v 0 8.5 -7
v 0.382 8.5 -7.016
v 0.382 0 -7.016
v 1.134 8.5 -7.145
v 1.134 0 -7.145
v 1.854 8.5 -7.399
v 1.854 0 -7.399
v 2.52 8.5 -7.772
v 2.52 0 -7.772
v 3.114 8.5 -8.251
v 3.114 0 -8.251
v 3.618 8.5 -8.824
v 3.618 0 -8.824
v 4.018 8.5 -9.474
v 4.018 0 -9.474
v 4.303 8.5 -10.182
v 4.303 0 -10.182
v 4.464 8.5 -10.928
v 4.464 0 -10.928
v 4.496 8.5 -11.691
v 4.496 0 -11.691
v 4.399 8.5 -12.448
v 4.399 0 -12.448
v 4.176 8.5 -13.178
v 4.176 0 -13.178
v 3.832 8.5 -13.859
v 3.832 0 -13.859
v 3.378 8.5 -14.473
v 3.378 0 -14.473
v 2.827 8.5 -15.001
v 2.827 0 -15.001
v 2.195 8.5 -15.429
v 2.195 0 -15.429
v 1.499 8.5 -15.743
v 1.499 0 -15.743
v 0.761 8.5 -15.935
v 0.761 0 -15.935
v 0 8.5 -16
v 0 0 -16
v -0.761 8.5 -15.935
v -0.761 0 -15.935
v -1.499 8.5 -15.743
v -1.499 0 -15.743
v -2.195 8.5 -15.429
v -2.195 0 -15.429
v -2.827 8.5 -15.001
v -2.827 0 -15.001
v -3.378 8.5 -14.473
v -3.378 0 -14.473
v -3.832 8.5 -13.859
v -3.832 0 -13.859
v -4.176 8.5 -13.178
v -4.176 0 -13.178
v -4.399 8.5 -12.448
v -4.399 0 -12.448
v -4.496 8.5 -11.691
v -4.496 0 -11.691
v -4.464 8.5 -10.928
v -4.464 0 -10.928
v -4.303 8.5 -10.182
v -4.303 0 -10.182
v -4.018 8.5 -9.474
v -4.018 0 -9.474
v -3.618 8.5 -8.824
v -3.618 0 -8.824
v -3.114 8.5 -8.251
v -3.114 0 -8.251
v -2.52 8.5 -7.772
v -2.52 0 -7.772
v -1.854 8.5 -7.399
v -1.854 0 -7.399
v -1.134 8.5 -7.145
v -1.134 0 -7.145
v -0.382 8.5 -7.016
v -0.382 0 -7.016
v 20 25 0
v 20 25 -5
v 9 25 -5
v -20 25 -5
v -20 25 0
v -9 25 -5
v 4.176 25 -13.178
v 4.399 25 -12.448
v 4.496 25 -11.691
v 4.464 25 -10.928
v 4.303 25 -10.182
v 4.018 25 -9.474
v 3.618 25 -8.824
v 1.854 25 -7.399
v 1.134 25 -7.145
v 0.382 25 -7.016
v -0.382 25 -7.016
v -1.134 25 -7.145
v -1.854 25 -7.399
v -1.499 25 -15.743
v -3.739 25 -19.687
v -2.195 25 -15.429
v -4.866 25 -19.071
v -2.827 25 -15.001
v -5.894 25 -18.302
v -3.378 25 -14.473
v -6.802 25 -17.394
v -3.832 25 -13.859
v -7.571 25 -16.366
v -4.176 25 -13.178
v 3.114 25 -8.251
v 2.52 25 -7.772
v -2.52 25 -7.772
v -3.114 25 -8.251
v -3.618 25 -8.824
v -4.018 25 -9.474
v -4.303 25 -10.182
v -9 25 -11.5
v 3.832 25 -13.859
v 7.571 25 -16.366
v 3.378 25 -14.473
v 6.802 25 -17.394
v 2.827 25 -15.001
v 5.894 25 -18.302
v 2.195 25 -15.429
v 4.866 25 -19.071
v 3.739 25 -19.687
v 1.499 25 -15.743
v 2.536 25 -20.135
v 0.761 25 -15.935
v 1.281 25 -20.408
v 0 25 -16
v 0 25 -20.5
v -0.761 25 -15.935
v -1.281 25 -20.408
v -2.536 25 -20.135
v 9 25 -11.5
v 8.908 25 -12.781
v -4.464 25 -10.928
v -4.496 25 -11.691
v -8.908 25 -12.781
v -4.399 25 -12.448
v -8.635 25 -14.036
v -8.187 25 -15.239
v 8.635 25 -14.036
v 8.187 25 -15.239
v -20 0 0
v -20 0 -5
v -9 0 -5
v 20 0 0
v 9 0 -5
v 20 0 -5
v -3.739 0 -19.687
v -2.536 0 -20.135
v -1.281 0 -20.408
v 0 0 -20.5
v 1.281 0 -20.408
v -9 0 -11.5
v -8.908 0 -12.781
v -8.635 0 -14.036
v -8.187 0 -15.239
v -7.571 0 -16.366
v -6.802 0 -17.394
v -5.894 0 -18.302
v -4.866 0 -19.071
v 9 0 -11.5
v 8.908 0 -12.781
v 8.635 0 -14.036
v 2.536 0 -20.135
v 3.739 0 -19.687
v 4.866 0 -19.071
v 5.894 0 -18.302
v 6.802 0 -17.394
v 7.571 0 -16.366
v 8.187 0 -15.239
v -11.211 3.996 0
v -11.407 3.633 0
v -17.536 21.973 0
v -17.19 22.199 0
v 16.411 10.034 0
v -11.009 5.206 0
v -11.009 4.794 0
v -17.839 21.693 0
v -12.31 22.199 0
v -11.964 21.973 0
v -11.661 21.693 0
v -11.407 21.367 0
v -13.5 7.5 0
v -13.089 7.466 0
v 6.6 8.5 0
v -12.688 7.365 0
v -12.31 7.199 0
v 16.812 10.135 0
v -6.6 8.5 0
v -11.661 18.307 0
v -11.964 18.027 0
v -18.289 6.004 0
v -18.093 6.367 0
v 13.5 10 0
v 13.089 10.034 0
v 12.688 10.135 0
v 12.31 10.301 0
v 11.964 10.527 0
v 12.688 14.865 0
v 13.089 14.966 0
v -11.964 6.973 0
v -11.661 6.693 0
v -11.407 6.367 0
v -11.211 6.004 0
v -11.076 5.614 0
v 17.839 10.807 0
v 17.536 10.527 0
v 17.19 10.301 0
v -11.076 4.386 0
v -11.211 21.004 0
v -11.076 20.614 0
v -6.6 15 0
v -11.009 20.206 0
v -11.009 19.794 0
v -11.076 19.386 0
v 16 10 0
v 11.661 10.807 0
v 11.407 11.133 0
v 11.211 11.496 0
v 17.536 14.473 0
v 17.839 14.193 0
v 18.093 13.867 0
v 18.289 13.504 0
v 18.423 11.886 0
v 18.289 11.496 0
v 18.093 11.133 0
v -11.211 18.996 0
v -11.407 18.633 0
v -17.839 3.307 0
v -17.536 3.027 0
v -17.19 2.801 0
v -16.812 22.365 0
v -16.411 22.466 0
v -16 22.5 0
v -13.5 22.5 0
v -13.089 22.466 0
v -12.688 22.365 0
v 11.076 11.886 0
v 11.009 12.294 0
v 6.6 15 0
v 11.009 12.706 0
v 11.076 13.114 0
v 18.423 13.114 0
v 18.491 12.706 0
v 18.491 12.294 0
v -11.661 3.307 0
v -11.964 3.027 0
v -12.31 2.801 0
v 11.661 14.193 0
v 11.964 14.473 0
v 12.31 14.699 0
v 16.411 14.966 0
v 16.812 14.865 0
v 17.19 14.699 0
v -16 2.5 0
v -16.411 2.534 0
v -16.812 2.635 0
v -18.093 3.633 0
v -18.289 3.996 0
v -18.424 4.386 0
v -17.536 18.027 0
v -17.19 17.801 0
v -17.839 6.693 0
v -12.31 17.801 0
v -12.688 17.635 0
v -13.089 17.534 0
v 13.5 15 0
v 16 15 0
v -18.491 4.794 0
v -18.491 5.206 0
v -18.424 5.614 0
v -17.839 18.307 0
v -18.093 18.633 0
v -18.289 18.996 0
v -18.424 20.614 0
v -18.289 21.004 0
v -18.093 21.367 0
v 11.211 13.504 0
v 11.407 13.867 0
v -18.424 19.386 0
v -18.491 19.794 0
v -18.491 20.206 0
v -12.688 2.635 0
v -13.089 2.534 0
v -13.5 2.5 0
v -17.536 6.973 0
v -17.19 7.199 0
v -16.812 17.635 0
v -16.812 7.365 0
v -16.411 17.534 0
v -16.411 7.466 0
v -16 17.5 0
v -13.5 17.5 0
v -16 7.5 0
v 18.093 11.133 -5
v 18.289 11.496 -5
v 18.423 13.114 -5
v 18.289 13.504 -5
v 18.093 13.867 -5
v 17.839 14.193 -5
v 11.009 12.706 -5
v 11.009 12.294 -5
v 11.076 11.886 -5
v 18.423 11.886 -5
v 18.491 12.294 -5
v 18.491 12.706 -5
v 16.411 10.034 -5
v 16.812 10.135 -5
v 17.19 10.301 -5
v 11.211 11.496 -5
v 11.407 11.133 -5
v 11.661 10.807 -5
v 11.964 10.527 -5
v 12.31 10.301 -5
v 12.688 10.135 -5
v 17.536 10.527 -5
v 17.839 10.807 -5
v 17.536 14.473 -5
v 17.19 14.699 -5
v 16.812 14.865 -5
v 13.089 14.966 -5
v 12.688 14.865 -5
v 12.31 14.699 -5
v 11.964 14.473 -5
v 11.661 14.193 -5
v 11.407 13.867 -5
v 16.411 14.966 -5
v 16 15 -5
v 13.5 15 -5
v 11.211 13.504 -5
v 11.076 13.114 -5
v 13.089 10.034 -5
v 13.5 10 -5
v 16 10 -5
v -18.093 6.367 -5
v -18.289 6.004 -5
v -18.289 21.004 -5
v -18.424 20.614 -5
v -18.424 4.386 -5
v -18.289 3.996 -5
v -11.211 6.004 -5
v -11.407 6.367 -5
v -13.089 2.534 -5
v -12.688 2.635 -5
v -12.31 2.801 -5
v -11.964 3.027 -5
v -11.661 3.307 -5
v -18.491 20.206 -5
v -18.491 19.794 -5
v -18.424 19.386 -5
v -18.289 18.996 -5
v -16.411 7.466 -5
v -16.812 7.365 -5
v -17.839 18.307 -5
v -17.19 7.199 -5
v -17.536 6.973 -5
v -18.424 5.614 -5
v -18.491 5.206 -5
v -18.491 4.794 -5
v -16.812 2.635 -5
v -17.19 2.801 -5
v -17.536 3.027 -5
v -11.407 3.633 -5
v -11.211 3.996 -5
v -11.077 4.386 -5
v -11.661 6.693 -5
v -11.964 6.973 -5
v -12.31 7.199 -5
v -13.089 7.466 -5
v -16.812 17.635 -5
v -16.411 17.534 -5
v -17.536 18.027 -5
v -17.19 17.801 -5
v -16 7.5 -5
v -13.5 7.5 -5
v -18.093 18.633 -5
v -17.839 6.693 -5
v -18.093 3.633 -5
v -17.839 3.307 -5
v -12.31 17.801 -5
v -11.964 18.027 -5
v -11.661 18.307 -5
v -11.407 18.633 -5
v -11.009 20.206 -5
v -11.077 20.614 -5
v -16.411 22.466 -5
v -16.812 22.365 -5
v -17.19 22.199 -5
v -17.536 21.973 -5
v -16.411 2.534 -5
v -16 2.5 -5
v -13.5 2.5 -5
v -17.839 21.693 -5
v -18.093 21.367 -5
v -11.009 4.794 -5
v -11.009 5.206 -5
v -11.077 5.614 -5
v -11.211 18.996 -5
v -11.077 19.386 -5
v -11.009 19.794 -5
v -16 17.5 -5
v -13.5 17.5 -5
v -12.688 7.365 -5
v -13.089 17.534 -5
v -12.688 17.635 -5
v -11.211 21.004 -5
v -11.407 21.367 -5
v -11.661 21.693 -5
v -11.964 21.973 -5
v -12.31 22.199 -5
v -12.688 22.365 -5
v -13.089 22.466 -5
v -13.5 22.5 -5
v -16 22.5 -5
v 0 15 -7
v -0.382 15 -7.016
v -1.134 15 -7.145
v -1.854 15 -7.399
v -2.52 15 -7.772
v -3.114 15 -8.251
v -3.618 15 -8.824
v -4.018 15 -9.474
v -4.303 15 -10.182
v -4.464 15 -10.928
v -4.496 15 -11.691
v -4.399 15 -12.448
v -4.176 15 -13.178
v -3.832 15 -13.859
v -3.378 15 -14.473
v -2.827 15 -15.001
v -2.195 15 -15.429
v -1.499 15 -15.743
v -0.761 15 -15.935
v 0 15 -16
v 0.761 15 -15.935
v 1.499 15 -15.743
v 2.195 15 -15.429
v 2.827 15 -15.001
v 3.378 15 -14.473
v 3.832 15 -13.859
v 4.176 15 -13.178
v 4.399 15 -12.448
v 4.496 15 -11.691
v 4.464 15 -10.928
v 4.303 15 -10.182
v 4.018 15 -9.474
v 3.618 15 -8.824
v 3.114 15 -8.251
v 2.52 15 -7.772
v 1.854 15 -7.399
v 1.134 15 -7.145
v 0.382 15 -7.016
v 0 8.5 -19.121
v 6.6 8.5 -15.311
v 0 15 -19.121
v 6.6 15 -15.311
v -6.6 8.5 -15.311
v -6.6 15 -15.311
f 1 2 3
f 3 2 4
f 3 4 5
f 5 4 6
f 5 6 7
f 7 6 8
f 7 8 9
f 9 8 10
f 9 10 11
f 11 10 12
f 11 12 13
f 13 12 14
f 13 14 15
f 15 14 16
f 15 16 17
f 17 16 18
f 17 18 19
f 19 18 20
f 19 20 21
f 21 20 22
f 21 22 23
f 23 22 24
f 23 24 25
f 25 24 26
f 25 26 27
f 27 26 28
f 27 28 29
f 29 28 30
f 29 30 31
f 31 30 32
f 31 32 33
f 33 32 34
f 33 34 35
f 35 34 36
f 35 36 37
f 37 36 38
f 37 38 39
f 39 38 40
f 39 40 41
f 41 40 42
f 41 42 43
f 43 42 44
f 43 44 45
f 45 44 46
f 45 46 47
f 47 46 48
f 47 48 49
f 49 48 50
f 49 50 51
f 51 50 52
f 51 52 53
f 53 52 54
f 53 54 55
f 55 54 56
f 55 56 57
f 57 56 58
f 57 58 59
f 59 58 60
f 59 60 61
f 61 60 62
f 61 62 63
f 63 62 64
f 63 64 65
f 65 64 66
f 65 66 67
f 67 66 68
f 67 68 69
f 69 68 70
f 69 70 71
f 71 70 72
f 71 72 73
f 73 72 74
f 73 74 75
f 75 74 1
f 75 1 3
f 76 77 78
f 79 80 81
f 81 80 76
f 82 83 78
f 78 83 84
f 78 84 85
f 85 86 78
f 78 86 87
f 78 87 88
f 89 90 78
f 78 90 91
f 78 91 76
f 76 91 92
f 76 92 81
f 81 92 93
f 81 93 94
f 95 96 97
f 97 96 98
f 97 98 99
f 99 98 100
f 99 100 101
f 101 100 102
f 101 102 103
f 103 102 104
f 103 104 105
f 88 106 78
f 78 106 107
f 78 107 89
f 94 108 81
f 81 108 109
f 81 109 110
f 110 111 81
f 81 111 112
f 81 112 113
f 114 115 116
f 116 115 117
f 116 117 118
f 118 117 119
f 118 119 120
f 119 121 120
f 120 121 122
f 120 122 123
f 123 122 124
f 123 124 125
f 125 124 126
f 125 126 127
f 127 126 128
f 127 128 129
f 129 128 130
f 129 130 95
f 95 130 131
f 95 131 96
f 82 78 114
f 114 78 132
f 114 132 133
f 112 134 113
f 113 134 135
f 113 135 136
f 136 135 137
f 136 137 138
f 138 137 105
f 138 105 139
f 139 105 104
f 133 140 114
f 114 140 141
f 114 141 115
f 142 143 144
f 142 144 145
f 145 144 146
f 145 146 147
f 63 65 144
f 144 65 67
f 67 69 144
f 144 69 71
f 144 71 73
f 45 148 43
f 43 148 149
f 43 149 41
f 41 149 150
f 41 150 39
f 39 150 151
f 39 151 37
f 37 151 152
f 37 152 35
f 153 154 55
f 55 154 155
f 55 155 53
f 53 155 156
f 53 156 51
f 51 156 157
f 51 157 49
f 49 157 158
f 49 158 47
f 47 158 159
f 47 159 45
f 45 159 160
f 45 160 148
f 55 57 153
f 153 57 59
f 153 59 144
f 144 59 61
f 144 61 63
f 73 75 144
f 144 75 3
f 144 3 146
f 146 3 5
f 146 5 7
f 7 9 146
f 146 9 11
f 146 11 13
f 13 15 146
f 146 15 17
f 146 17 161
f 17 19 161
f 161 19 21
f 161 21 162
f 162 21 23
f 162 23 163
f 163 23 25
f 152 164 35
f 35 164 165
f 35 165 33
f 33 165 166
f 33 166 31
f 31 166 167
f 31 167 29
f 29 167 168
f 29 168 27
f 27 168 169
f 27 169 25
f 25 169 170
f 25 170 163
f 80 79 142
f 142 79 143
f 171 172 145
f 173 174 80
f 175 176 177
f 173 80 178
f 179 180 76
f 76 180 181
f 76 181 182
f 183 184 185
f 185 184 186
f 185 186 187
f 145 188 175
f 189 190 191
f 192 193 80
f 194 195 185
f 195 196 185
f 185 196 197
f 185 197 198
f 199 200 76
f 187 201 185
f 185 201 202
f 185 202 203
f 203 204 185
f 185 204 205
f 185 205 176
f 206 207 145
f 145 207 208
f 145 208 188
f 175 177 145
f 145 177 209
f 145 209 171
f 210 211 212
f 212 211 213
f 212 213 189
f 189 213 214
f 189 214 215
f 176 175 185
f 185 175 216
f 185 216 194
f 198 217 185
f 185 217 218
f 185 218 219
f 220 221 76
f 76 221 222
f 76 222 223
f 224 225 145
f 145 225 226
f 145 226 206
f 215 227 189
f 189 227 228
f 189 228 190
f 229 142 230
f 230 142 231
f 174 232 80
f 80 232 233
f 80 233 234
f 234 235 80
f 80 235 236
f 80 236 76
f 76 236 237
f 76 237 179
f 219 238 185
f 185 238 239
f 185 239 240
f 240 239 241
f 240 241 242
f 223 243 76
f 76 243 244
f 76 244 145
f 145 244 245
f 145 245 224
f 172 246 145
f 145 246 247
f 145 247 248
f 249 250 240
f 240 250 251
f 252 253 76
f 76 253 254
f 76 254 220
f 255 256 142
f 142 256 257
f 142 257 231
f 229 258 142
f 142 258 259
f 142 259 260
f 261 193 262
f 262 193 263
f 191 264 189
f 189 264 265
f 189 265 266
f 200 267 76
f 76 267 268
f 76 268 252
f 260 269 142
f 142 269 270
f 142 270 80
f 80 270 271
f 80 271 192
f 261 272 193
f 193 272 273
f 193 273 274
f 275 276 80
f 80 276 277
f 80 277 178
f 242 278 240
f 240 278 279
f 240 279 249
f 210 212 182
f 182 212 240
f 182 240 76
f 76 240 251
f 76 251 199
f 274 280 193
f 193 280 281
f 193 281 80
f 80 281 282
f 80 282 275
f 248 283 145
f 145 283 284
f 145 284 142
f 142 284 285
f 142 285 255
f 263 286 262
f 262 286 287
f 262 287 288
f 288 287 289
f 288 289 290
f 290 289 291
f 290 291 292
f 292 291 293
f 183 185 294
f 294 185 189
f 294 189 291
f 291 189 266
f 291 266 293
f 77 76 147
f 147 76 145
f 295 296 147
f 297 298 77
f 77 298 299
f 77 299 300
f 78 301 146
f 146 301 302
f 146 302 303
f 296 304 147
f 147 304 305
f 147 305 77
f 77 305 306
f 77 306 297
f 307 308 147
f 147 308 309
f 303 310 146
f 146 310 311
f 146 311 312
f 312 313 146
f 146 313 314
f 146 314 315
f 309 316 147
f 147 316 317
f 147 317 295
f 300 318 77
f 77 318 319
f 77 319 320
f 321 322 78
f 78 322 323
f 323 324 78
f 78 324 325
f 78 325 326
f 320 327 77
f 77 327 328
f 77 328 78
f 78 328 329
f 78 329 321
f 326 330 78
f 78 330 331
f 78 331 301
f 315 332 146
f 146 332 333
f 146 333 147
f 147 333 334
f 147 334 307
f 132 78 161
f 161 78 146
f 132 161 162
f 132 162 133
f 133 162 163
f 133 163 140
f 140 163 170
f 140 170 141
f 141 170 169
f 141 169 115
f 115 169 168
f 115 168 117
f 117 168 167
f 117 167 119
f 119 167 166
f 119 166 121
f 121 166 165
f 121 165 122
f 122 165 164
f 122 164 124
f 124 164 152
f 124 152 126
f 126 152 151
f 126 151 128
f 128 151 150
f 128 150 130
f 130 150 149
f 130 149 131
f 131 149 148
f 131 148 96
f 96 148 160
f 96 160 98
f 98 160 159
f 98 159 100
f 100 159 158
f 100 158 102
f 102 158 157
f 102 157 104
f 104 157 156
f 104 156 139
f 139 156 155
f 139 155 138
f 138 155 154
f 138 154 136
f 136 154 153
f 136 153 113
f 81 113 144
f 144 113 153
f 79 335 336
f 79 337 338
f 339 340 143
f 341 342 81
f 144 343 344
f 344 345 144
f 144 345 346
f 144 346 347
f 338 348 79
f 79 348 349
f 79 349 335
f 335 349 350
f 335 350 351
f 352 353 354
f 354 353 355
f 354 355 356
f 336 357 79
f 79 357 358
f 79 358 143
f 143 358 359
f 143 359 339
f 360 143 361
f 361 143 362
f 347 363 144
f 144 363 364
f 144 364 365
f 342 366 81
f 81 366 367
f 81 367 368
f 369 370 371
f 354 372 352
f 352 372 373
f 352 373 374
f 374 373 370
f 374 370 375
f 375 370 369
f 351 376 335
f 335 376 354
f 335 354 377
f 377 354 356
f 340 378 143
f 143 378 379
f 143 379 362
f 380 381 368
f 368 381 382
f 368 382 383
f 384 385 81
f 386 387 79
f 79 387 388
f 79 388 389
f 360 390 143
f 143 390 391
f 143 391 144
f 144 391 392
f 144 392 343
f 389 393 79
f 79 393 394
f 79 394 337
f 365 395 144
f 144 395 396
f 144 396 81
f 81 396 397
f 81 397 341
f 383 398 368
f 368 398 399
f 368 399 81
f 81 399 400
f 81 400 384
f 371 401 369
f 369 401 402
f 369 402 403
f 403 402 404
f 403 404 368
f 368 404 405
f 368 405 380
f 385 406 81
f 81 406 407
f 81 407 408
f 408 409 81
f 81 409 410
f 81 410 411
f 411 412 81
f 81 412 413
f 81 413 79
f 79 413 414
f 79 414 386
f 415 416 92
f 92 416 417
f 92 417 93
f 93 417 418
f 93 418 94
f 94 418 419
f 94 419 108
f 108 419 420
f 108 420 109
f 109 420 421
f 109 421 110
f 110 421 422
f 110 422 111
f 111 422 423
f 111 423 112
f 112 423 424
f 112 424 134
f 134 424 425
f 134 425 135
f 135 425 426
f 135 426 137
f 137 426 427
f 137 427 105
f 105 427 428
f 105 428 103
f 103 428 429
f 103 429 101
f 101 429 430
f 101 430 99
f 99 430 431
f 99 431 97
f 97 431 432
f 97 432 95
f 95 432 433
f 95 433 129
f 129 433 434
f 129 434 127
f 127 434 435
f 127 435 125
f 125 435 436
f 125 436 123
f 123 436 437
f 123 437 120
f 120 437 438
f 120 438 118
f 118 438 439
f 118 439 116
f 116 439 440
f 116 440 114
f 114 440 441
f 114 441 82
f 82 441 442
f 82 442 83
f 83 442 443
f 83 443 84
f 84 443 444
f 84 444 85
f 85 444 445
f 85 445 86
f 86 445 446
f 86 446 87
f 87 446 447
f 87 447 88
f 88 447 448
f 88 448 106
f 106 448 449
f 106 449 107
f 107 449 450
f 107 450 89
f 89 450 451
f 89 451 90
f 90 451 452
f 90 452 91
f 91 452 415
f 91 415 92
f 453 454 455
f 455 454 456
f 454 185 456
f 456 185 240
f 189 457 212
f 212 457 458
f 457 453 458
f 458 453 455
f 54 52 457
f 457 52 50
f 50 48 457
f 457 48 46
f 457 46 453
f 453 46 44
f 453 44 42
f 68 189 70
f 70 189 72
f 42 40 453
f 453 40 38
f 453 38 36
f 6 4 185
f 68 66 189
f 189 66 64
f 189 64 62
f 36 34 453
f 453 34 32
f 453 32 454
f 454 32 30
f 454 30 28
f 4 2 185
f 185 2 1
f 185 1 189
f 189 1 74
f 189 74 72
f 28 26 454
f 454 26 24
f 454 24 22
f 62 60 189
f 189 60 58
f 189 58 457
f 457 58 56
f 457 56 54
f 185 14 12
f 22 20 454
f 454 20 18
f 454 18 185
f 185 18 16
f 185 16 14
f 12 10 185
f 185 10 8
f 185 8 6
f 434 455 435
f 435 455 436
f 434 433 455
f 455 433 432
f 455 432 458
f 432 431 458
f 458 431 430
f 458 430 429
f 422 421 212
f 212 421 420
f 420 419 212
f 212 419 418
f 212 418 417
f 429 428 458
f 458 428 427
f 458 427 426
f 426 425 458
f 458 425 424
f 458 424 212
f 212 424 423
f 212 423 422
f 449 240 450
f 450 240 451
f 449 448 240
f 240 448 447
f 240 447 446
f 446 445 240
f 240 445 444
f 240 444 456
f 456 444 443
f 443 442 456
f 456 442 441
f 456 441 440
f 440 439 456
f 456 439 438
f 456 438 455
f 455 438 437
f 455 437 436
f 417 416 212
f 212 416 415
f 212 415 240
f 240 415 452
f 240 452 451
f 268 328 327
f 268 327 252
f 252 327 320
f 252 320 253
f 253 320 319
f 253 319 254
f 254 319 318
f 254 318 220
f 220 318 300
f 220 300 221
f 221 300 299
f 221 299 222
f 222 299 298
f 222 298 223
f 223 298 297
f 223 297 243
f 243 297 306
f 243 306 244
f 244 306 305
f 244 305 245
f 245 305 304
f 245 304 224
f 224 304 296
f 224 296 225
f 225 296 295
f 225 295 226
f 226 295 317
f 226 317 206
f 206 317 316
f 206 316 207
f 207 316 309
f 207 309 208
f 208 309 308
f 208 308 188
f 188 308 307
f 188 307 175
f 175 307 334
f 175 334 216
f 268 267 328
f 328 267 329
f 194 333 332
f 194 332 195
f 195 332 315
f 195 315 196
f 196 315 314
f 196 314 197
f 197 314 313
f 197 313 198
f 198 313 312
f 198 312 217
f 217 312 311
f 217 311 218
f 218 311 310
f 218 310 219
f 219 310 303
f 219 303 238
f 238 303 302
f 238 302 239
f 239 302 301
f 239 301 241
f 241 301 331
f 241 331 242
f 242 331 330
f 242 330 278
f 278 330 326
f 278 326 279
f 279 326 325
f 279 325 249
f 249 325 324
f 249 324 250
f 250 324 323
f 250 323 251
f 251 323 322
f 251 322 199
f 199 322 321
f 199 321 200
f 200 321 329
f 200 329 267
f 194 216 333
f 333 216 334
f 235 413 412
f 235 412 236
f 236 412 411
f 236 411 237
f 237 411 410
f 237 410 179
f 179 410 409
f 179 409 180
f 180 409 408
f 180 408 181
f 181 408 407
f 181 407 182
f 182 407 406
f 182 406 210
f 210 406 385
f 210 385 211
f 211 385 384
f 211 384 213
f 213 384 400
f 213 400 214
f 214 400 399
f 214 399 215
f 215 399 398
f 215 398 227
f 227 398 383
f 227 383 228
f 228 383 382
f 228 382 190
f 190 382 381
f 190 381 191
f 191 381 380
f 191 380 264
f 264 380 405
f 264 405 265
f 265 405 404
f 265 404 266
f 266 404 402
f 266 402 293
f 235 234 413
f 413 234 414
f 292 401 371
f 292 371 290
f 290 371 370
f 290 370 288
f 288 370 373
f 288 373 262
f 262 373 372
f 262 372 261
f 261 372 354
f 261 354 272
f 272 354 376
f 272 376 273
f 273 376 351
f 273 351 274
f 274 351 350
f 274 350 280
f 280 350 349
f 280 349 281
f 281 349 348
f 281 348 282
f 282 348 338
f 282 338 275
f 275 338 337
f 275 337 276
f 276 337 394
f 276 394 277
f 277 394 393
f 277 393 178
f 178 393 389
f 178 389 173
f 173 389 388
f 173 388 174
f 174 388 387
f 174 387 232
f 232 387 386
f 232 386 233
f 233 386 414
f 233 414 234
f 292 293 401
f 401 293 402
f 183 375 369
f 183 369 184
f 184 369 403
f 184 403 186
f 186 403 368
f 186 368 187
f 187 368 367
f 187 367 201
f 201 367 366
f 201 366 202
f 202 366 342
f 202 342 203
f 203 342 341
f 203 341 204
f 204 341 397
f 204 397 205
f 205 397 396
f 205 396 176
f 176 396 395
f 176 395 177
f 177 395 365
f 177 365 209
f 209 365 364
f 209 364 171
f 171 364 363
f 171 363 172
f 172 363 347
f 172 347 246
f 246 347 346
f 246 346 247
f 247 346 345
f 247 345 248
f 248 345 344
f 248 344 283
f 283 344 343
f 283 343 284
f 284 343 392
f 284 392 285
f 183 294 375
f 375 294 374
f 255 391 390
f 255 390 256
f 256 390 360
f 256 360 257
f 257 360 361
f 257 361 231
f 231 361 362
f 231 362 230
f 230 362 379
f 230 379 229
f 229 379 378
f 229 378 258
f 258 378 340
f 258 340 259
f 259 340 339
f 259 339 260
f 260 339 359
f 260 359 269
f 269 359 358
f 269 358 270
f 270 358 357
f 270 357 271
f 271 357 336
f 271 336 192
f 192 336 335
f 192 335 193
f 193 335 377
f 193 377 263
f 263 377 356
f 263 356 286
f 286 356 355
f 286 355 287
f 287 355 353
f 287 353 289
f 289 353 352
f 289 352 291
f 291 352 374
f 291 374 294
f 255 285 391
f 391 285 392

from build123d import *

# Parameters (mm, degrees)
SKETCH1_R           = 4.5
BOSS_EXTRUDE1_DEPTH = 25
CUT_EXTRUDE1_DEPTH  = 6.5
SKETCH4_W           = 13.2
SKETCH4_H           = 6.5
CUT_EXTRUDE2_DEPTH  = 8.689488223
CUT_EXTRUDE3_DEPTH  = 6


with BuildPart() as part:
    # Sketch1 → Boss-Extrude1 (new body)
    with BuildSketch(Plane(origin=(0, 0, 0), x_dir=(1, 0, 0), z_dir=(0, 1, 0))):
        with BuildLine():
            Line((20, 0), (-20, 0))
            Line((-20, 0), (-20, 5))
            Line((-20, 5), (-9, 5))
            Line((-9, 5), (-9, 11.5))
            ThreePointArc((-9, 11.5), (0, 20.5), (9, 11.5))
            Line((9, 11.5), (9, 5))
            Line((9, 5), (20, 5))
            Line((20, 5), (20, 0))
        make_face()
        with Locations((0, 11.5)):
            Circle(SKETCH1_R, mode=Mode.SUBTRACT)
    extrude(amount=BOSS_EXTRUDE1_DEPTH)

    # Sketch2 → Cut-Extrude1 (cut)
    with BuildSketch(Plane(origin=(0, 15, 0), x_dir=(1, 0, 0), z_dir=(0, 1, 0))):
        Polygon((0, 19.121023553), (-6.6, 15.310511777), (-6.6, 7.689488223), (0, 3.878976447), (6.6, 7.689488223), (6.6, 15.310511777), align=None)
    extrude(amount=-CUT_EXTRUDE1_DEPTH, mode=Mode.SUBTRACT)

    # Sketch4 → Cut-Extrude2 (cut, through all)
    with BuildSketch(Plane(origin=(0, 0, -7.689488223), x_dir=(-1, 0, 0), z_dir=(0, 0, -1))):
        with Locations((0, 11.75)):
            Rectangle(SKETCH4_W, SKETCH4_H)
    extrude(amount=-CUT_EXTRUDE2_DEPTH, mode=Mode.SUBTRACT)

    # Sketch5 → Cut-Extrude3 (cut, through all)
    with BuildSketch(Plane(origin=(0, 0, -5), x_dir=(-1, 0, 0), z_dir=(0, 0, -1))):
        with BuildLine():
            Line((-16, 15), (-13.5, 15))
            ThreePointArc((-13.5, 15), (-11, 12.5), (-13.5, 10))
            Line((-13.5, 10), (-16, 10))
            ThreePointArc((-16, 10), (-18.5, 12.5), (-16, 15))
        make_face()
        with BuildLine():
            Line((13.5, 22.5), (16, 22.5))
            ThreePointArc((16, 22.5), (18.5, 20), (16, 17.5))
            Line((16, 17.5), (13.5, 17.5))
            ThreePointArc((13.5, 17.5), (11, 20), (13.5, 22.5))
        make_face()
        with BuildLine():
            Line((13.5, 7.5), (16, 7.5))
            ThreePointArc((16, 7.5), (18.5, 5), (16, 2.5))
            Line((16, 2.5), (13.5, 2.5))
            ThreePointArc((13.5, 2.5), (11, 5), (13.5, 7.5))
        make_face()
    extrude(amount=-CUT_EXTRUDE3_DEPTH, mode=Mode.SUBTRACT)


solid = part.part
